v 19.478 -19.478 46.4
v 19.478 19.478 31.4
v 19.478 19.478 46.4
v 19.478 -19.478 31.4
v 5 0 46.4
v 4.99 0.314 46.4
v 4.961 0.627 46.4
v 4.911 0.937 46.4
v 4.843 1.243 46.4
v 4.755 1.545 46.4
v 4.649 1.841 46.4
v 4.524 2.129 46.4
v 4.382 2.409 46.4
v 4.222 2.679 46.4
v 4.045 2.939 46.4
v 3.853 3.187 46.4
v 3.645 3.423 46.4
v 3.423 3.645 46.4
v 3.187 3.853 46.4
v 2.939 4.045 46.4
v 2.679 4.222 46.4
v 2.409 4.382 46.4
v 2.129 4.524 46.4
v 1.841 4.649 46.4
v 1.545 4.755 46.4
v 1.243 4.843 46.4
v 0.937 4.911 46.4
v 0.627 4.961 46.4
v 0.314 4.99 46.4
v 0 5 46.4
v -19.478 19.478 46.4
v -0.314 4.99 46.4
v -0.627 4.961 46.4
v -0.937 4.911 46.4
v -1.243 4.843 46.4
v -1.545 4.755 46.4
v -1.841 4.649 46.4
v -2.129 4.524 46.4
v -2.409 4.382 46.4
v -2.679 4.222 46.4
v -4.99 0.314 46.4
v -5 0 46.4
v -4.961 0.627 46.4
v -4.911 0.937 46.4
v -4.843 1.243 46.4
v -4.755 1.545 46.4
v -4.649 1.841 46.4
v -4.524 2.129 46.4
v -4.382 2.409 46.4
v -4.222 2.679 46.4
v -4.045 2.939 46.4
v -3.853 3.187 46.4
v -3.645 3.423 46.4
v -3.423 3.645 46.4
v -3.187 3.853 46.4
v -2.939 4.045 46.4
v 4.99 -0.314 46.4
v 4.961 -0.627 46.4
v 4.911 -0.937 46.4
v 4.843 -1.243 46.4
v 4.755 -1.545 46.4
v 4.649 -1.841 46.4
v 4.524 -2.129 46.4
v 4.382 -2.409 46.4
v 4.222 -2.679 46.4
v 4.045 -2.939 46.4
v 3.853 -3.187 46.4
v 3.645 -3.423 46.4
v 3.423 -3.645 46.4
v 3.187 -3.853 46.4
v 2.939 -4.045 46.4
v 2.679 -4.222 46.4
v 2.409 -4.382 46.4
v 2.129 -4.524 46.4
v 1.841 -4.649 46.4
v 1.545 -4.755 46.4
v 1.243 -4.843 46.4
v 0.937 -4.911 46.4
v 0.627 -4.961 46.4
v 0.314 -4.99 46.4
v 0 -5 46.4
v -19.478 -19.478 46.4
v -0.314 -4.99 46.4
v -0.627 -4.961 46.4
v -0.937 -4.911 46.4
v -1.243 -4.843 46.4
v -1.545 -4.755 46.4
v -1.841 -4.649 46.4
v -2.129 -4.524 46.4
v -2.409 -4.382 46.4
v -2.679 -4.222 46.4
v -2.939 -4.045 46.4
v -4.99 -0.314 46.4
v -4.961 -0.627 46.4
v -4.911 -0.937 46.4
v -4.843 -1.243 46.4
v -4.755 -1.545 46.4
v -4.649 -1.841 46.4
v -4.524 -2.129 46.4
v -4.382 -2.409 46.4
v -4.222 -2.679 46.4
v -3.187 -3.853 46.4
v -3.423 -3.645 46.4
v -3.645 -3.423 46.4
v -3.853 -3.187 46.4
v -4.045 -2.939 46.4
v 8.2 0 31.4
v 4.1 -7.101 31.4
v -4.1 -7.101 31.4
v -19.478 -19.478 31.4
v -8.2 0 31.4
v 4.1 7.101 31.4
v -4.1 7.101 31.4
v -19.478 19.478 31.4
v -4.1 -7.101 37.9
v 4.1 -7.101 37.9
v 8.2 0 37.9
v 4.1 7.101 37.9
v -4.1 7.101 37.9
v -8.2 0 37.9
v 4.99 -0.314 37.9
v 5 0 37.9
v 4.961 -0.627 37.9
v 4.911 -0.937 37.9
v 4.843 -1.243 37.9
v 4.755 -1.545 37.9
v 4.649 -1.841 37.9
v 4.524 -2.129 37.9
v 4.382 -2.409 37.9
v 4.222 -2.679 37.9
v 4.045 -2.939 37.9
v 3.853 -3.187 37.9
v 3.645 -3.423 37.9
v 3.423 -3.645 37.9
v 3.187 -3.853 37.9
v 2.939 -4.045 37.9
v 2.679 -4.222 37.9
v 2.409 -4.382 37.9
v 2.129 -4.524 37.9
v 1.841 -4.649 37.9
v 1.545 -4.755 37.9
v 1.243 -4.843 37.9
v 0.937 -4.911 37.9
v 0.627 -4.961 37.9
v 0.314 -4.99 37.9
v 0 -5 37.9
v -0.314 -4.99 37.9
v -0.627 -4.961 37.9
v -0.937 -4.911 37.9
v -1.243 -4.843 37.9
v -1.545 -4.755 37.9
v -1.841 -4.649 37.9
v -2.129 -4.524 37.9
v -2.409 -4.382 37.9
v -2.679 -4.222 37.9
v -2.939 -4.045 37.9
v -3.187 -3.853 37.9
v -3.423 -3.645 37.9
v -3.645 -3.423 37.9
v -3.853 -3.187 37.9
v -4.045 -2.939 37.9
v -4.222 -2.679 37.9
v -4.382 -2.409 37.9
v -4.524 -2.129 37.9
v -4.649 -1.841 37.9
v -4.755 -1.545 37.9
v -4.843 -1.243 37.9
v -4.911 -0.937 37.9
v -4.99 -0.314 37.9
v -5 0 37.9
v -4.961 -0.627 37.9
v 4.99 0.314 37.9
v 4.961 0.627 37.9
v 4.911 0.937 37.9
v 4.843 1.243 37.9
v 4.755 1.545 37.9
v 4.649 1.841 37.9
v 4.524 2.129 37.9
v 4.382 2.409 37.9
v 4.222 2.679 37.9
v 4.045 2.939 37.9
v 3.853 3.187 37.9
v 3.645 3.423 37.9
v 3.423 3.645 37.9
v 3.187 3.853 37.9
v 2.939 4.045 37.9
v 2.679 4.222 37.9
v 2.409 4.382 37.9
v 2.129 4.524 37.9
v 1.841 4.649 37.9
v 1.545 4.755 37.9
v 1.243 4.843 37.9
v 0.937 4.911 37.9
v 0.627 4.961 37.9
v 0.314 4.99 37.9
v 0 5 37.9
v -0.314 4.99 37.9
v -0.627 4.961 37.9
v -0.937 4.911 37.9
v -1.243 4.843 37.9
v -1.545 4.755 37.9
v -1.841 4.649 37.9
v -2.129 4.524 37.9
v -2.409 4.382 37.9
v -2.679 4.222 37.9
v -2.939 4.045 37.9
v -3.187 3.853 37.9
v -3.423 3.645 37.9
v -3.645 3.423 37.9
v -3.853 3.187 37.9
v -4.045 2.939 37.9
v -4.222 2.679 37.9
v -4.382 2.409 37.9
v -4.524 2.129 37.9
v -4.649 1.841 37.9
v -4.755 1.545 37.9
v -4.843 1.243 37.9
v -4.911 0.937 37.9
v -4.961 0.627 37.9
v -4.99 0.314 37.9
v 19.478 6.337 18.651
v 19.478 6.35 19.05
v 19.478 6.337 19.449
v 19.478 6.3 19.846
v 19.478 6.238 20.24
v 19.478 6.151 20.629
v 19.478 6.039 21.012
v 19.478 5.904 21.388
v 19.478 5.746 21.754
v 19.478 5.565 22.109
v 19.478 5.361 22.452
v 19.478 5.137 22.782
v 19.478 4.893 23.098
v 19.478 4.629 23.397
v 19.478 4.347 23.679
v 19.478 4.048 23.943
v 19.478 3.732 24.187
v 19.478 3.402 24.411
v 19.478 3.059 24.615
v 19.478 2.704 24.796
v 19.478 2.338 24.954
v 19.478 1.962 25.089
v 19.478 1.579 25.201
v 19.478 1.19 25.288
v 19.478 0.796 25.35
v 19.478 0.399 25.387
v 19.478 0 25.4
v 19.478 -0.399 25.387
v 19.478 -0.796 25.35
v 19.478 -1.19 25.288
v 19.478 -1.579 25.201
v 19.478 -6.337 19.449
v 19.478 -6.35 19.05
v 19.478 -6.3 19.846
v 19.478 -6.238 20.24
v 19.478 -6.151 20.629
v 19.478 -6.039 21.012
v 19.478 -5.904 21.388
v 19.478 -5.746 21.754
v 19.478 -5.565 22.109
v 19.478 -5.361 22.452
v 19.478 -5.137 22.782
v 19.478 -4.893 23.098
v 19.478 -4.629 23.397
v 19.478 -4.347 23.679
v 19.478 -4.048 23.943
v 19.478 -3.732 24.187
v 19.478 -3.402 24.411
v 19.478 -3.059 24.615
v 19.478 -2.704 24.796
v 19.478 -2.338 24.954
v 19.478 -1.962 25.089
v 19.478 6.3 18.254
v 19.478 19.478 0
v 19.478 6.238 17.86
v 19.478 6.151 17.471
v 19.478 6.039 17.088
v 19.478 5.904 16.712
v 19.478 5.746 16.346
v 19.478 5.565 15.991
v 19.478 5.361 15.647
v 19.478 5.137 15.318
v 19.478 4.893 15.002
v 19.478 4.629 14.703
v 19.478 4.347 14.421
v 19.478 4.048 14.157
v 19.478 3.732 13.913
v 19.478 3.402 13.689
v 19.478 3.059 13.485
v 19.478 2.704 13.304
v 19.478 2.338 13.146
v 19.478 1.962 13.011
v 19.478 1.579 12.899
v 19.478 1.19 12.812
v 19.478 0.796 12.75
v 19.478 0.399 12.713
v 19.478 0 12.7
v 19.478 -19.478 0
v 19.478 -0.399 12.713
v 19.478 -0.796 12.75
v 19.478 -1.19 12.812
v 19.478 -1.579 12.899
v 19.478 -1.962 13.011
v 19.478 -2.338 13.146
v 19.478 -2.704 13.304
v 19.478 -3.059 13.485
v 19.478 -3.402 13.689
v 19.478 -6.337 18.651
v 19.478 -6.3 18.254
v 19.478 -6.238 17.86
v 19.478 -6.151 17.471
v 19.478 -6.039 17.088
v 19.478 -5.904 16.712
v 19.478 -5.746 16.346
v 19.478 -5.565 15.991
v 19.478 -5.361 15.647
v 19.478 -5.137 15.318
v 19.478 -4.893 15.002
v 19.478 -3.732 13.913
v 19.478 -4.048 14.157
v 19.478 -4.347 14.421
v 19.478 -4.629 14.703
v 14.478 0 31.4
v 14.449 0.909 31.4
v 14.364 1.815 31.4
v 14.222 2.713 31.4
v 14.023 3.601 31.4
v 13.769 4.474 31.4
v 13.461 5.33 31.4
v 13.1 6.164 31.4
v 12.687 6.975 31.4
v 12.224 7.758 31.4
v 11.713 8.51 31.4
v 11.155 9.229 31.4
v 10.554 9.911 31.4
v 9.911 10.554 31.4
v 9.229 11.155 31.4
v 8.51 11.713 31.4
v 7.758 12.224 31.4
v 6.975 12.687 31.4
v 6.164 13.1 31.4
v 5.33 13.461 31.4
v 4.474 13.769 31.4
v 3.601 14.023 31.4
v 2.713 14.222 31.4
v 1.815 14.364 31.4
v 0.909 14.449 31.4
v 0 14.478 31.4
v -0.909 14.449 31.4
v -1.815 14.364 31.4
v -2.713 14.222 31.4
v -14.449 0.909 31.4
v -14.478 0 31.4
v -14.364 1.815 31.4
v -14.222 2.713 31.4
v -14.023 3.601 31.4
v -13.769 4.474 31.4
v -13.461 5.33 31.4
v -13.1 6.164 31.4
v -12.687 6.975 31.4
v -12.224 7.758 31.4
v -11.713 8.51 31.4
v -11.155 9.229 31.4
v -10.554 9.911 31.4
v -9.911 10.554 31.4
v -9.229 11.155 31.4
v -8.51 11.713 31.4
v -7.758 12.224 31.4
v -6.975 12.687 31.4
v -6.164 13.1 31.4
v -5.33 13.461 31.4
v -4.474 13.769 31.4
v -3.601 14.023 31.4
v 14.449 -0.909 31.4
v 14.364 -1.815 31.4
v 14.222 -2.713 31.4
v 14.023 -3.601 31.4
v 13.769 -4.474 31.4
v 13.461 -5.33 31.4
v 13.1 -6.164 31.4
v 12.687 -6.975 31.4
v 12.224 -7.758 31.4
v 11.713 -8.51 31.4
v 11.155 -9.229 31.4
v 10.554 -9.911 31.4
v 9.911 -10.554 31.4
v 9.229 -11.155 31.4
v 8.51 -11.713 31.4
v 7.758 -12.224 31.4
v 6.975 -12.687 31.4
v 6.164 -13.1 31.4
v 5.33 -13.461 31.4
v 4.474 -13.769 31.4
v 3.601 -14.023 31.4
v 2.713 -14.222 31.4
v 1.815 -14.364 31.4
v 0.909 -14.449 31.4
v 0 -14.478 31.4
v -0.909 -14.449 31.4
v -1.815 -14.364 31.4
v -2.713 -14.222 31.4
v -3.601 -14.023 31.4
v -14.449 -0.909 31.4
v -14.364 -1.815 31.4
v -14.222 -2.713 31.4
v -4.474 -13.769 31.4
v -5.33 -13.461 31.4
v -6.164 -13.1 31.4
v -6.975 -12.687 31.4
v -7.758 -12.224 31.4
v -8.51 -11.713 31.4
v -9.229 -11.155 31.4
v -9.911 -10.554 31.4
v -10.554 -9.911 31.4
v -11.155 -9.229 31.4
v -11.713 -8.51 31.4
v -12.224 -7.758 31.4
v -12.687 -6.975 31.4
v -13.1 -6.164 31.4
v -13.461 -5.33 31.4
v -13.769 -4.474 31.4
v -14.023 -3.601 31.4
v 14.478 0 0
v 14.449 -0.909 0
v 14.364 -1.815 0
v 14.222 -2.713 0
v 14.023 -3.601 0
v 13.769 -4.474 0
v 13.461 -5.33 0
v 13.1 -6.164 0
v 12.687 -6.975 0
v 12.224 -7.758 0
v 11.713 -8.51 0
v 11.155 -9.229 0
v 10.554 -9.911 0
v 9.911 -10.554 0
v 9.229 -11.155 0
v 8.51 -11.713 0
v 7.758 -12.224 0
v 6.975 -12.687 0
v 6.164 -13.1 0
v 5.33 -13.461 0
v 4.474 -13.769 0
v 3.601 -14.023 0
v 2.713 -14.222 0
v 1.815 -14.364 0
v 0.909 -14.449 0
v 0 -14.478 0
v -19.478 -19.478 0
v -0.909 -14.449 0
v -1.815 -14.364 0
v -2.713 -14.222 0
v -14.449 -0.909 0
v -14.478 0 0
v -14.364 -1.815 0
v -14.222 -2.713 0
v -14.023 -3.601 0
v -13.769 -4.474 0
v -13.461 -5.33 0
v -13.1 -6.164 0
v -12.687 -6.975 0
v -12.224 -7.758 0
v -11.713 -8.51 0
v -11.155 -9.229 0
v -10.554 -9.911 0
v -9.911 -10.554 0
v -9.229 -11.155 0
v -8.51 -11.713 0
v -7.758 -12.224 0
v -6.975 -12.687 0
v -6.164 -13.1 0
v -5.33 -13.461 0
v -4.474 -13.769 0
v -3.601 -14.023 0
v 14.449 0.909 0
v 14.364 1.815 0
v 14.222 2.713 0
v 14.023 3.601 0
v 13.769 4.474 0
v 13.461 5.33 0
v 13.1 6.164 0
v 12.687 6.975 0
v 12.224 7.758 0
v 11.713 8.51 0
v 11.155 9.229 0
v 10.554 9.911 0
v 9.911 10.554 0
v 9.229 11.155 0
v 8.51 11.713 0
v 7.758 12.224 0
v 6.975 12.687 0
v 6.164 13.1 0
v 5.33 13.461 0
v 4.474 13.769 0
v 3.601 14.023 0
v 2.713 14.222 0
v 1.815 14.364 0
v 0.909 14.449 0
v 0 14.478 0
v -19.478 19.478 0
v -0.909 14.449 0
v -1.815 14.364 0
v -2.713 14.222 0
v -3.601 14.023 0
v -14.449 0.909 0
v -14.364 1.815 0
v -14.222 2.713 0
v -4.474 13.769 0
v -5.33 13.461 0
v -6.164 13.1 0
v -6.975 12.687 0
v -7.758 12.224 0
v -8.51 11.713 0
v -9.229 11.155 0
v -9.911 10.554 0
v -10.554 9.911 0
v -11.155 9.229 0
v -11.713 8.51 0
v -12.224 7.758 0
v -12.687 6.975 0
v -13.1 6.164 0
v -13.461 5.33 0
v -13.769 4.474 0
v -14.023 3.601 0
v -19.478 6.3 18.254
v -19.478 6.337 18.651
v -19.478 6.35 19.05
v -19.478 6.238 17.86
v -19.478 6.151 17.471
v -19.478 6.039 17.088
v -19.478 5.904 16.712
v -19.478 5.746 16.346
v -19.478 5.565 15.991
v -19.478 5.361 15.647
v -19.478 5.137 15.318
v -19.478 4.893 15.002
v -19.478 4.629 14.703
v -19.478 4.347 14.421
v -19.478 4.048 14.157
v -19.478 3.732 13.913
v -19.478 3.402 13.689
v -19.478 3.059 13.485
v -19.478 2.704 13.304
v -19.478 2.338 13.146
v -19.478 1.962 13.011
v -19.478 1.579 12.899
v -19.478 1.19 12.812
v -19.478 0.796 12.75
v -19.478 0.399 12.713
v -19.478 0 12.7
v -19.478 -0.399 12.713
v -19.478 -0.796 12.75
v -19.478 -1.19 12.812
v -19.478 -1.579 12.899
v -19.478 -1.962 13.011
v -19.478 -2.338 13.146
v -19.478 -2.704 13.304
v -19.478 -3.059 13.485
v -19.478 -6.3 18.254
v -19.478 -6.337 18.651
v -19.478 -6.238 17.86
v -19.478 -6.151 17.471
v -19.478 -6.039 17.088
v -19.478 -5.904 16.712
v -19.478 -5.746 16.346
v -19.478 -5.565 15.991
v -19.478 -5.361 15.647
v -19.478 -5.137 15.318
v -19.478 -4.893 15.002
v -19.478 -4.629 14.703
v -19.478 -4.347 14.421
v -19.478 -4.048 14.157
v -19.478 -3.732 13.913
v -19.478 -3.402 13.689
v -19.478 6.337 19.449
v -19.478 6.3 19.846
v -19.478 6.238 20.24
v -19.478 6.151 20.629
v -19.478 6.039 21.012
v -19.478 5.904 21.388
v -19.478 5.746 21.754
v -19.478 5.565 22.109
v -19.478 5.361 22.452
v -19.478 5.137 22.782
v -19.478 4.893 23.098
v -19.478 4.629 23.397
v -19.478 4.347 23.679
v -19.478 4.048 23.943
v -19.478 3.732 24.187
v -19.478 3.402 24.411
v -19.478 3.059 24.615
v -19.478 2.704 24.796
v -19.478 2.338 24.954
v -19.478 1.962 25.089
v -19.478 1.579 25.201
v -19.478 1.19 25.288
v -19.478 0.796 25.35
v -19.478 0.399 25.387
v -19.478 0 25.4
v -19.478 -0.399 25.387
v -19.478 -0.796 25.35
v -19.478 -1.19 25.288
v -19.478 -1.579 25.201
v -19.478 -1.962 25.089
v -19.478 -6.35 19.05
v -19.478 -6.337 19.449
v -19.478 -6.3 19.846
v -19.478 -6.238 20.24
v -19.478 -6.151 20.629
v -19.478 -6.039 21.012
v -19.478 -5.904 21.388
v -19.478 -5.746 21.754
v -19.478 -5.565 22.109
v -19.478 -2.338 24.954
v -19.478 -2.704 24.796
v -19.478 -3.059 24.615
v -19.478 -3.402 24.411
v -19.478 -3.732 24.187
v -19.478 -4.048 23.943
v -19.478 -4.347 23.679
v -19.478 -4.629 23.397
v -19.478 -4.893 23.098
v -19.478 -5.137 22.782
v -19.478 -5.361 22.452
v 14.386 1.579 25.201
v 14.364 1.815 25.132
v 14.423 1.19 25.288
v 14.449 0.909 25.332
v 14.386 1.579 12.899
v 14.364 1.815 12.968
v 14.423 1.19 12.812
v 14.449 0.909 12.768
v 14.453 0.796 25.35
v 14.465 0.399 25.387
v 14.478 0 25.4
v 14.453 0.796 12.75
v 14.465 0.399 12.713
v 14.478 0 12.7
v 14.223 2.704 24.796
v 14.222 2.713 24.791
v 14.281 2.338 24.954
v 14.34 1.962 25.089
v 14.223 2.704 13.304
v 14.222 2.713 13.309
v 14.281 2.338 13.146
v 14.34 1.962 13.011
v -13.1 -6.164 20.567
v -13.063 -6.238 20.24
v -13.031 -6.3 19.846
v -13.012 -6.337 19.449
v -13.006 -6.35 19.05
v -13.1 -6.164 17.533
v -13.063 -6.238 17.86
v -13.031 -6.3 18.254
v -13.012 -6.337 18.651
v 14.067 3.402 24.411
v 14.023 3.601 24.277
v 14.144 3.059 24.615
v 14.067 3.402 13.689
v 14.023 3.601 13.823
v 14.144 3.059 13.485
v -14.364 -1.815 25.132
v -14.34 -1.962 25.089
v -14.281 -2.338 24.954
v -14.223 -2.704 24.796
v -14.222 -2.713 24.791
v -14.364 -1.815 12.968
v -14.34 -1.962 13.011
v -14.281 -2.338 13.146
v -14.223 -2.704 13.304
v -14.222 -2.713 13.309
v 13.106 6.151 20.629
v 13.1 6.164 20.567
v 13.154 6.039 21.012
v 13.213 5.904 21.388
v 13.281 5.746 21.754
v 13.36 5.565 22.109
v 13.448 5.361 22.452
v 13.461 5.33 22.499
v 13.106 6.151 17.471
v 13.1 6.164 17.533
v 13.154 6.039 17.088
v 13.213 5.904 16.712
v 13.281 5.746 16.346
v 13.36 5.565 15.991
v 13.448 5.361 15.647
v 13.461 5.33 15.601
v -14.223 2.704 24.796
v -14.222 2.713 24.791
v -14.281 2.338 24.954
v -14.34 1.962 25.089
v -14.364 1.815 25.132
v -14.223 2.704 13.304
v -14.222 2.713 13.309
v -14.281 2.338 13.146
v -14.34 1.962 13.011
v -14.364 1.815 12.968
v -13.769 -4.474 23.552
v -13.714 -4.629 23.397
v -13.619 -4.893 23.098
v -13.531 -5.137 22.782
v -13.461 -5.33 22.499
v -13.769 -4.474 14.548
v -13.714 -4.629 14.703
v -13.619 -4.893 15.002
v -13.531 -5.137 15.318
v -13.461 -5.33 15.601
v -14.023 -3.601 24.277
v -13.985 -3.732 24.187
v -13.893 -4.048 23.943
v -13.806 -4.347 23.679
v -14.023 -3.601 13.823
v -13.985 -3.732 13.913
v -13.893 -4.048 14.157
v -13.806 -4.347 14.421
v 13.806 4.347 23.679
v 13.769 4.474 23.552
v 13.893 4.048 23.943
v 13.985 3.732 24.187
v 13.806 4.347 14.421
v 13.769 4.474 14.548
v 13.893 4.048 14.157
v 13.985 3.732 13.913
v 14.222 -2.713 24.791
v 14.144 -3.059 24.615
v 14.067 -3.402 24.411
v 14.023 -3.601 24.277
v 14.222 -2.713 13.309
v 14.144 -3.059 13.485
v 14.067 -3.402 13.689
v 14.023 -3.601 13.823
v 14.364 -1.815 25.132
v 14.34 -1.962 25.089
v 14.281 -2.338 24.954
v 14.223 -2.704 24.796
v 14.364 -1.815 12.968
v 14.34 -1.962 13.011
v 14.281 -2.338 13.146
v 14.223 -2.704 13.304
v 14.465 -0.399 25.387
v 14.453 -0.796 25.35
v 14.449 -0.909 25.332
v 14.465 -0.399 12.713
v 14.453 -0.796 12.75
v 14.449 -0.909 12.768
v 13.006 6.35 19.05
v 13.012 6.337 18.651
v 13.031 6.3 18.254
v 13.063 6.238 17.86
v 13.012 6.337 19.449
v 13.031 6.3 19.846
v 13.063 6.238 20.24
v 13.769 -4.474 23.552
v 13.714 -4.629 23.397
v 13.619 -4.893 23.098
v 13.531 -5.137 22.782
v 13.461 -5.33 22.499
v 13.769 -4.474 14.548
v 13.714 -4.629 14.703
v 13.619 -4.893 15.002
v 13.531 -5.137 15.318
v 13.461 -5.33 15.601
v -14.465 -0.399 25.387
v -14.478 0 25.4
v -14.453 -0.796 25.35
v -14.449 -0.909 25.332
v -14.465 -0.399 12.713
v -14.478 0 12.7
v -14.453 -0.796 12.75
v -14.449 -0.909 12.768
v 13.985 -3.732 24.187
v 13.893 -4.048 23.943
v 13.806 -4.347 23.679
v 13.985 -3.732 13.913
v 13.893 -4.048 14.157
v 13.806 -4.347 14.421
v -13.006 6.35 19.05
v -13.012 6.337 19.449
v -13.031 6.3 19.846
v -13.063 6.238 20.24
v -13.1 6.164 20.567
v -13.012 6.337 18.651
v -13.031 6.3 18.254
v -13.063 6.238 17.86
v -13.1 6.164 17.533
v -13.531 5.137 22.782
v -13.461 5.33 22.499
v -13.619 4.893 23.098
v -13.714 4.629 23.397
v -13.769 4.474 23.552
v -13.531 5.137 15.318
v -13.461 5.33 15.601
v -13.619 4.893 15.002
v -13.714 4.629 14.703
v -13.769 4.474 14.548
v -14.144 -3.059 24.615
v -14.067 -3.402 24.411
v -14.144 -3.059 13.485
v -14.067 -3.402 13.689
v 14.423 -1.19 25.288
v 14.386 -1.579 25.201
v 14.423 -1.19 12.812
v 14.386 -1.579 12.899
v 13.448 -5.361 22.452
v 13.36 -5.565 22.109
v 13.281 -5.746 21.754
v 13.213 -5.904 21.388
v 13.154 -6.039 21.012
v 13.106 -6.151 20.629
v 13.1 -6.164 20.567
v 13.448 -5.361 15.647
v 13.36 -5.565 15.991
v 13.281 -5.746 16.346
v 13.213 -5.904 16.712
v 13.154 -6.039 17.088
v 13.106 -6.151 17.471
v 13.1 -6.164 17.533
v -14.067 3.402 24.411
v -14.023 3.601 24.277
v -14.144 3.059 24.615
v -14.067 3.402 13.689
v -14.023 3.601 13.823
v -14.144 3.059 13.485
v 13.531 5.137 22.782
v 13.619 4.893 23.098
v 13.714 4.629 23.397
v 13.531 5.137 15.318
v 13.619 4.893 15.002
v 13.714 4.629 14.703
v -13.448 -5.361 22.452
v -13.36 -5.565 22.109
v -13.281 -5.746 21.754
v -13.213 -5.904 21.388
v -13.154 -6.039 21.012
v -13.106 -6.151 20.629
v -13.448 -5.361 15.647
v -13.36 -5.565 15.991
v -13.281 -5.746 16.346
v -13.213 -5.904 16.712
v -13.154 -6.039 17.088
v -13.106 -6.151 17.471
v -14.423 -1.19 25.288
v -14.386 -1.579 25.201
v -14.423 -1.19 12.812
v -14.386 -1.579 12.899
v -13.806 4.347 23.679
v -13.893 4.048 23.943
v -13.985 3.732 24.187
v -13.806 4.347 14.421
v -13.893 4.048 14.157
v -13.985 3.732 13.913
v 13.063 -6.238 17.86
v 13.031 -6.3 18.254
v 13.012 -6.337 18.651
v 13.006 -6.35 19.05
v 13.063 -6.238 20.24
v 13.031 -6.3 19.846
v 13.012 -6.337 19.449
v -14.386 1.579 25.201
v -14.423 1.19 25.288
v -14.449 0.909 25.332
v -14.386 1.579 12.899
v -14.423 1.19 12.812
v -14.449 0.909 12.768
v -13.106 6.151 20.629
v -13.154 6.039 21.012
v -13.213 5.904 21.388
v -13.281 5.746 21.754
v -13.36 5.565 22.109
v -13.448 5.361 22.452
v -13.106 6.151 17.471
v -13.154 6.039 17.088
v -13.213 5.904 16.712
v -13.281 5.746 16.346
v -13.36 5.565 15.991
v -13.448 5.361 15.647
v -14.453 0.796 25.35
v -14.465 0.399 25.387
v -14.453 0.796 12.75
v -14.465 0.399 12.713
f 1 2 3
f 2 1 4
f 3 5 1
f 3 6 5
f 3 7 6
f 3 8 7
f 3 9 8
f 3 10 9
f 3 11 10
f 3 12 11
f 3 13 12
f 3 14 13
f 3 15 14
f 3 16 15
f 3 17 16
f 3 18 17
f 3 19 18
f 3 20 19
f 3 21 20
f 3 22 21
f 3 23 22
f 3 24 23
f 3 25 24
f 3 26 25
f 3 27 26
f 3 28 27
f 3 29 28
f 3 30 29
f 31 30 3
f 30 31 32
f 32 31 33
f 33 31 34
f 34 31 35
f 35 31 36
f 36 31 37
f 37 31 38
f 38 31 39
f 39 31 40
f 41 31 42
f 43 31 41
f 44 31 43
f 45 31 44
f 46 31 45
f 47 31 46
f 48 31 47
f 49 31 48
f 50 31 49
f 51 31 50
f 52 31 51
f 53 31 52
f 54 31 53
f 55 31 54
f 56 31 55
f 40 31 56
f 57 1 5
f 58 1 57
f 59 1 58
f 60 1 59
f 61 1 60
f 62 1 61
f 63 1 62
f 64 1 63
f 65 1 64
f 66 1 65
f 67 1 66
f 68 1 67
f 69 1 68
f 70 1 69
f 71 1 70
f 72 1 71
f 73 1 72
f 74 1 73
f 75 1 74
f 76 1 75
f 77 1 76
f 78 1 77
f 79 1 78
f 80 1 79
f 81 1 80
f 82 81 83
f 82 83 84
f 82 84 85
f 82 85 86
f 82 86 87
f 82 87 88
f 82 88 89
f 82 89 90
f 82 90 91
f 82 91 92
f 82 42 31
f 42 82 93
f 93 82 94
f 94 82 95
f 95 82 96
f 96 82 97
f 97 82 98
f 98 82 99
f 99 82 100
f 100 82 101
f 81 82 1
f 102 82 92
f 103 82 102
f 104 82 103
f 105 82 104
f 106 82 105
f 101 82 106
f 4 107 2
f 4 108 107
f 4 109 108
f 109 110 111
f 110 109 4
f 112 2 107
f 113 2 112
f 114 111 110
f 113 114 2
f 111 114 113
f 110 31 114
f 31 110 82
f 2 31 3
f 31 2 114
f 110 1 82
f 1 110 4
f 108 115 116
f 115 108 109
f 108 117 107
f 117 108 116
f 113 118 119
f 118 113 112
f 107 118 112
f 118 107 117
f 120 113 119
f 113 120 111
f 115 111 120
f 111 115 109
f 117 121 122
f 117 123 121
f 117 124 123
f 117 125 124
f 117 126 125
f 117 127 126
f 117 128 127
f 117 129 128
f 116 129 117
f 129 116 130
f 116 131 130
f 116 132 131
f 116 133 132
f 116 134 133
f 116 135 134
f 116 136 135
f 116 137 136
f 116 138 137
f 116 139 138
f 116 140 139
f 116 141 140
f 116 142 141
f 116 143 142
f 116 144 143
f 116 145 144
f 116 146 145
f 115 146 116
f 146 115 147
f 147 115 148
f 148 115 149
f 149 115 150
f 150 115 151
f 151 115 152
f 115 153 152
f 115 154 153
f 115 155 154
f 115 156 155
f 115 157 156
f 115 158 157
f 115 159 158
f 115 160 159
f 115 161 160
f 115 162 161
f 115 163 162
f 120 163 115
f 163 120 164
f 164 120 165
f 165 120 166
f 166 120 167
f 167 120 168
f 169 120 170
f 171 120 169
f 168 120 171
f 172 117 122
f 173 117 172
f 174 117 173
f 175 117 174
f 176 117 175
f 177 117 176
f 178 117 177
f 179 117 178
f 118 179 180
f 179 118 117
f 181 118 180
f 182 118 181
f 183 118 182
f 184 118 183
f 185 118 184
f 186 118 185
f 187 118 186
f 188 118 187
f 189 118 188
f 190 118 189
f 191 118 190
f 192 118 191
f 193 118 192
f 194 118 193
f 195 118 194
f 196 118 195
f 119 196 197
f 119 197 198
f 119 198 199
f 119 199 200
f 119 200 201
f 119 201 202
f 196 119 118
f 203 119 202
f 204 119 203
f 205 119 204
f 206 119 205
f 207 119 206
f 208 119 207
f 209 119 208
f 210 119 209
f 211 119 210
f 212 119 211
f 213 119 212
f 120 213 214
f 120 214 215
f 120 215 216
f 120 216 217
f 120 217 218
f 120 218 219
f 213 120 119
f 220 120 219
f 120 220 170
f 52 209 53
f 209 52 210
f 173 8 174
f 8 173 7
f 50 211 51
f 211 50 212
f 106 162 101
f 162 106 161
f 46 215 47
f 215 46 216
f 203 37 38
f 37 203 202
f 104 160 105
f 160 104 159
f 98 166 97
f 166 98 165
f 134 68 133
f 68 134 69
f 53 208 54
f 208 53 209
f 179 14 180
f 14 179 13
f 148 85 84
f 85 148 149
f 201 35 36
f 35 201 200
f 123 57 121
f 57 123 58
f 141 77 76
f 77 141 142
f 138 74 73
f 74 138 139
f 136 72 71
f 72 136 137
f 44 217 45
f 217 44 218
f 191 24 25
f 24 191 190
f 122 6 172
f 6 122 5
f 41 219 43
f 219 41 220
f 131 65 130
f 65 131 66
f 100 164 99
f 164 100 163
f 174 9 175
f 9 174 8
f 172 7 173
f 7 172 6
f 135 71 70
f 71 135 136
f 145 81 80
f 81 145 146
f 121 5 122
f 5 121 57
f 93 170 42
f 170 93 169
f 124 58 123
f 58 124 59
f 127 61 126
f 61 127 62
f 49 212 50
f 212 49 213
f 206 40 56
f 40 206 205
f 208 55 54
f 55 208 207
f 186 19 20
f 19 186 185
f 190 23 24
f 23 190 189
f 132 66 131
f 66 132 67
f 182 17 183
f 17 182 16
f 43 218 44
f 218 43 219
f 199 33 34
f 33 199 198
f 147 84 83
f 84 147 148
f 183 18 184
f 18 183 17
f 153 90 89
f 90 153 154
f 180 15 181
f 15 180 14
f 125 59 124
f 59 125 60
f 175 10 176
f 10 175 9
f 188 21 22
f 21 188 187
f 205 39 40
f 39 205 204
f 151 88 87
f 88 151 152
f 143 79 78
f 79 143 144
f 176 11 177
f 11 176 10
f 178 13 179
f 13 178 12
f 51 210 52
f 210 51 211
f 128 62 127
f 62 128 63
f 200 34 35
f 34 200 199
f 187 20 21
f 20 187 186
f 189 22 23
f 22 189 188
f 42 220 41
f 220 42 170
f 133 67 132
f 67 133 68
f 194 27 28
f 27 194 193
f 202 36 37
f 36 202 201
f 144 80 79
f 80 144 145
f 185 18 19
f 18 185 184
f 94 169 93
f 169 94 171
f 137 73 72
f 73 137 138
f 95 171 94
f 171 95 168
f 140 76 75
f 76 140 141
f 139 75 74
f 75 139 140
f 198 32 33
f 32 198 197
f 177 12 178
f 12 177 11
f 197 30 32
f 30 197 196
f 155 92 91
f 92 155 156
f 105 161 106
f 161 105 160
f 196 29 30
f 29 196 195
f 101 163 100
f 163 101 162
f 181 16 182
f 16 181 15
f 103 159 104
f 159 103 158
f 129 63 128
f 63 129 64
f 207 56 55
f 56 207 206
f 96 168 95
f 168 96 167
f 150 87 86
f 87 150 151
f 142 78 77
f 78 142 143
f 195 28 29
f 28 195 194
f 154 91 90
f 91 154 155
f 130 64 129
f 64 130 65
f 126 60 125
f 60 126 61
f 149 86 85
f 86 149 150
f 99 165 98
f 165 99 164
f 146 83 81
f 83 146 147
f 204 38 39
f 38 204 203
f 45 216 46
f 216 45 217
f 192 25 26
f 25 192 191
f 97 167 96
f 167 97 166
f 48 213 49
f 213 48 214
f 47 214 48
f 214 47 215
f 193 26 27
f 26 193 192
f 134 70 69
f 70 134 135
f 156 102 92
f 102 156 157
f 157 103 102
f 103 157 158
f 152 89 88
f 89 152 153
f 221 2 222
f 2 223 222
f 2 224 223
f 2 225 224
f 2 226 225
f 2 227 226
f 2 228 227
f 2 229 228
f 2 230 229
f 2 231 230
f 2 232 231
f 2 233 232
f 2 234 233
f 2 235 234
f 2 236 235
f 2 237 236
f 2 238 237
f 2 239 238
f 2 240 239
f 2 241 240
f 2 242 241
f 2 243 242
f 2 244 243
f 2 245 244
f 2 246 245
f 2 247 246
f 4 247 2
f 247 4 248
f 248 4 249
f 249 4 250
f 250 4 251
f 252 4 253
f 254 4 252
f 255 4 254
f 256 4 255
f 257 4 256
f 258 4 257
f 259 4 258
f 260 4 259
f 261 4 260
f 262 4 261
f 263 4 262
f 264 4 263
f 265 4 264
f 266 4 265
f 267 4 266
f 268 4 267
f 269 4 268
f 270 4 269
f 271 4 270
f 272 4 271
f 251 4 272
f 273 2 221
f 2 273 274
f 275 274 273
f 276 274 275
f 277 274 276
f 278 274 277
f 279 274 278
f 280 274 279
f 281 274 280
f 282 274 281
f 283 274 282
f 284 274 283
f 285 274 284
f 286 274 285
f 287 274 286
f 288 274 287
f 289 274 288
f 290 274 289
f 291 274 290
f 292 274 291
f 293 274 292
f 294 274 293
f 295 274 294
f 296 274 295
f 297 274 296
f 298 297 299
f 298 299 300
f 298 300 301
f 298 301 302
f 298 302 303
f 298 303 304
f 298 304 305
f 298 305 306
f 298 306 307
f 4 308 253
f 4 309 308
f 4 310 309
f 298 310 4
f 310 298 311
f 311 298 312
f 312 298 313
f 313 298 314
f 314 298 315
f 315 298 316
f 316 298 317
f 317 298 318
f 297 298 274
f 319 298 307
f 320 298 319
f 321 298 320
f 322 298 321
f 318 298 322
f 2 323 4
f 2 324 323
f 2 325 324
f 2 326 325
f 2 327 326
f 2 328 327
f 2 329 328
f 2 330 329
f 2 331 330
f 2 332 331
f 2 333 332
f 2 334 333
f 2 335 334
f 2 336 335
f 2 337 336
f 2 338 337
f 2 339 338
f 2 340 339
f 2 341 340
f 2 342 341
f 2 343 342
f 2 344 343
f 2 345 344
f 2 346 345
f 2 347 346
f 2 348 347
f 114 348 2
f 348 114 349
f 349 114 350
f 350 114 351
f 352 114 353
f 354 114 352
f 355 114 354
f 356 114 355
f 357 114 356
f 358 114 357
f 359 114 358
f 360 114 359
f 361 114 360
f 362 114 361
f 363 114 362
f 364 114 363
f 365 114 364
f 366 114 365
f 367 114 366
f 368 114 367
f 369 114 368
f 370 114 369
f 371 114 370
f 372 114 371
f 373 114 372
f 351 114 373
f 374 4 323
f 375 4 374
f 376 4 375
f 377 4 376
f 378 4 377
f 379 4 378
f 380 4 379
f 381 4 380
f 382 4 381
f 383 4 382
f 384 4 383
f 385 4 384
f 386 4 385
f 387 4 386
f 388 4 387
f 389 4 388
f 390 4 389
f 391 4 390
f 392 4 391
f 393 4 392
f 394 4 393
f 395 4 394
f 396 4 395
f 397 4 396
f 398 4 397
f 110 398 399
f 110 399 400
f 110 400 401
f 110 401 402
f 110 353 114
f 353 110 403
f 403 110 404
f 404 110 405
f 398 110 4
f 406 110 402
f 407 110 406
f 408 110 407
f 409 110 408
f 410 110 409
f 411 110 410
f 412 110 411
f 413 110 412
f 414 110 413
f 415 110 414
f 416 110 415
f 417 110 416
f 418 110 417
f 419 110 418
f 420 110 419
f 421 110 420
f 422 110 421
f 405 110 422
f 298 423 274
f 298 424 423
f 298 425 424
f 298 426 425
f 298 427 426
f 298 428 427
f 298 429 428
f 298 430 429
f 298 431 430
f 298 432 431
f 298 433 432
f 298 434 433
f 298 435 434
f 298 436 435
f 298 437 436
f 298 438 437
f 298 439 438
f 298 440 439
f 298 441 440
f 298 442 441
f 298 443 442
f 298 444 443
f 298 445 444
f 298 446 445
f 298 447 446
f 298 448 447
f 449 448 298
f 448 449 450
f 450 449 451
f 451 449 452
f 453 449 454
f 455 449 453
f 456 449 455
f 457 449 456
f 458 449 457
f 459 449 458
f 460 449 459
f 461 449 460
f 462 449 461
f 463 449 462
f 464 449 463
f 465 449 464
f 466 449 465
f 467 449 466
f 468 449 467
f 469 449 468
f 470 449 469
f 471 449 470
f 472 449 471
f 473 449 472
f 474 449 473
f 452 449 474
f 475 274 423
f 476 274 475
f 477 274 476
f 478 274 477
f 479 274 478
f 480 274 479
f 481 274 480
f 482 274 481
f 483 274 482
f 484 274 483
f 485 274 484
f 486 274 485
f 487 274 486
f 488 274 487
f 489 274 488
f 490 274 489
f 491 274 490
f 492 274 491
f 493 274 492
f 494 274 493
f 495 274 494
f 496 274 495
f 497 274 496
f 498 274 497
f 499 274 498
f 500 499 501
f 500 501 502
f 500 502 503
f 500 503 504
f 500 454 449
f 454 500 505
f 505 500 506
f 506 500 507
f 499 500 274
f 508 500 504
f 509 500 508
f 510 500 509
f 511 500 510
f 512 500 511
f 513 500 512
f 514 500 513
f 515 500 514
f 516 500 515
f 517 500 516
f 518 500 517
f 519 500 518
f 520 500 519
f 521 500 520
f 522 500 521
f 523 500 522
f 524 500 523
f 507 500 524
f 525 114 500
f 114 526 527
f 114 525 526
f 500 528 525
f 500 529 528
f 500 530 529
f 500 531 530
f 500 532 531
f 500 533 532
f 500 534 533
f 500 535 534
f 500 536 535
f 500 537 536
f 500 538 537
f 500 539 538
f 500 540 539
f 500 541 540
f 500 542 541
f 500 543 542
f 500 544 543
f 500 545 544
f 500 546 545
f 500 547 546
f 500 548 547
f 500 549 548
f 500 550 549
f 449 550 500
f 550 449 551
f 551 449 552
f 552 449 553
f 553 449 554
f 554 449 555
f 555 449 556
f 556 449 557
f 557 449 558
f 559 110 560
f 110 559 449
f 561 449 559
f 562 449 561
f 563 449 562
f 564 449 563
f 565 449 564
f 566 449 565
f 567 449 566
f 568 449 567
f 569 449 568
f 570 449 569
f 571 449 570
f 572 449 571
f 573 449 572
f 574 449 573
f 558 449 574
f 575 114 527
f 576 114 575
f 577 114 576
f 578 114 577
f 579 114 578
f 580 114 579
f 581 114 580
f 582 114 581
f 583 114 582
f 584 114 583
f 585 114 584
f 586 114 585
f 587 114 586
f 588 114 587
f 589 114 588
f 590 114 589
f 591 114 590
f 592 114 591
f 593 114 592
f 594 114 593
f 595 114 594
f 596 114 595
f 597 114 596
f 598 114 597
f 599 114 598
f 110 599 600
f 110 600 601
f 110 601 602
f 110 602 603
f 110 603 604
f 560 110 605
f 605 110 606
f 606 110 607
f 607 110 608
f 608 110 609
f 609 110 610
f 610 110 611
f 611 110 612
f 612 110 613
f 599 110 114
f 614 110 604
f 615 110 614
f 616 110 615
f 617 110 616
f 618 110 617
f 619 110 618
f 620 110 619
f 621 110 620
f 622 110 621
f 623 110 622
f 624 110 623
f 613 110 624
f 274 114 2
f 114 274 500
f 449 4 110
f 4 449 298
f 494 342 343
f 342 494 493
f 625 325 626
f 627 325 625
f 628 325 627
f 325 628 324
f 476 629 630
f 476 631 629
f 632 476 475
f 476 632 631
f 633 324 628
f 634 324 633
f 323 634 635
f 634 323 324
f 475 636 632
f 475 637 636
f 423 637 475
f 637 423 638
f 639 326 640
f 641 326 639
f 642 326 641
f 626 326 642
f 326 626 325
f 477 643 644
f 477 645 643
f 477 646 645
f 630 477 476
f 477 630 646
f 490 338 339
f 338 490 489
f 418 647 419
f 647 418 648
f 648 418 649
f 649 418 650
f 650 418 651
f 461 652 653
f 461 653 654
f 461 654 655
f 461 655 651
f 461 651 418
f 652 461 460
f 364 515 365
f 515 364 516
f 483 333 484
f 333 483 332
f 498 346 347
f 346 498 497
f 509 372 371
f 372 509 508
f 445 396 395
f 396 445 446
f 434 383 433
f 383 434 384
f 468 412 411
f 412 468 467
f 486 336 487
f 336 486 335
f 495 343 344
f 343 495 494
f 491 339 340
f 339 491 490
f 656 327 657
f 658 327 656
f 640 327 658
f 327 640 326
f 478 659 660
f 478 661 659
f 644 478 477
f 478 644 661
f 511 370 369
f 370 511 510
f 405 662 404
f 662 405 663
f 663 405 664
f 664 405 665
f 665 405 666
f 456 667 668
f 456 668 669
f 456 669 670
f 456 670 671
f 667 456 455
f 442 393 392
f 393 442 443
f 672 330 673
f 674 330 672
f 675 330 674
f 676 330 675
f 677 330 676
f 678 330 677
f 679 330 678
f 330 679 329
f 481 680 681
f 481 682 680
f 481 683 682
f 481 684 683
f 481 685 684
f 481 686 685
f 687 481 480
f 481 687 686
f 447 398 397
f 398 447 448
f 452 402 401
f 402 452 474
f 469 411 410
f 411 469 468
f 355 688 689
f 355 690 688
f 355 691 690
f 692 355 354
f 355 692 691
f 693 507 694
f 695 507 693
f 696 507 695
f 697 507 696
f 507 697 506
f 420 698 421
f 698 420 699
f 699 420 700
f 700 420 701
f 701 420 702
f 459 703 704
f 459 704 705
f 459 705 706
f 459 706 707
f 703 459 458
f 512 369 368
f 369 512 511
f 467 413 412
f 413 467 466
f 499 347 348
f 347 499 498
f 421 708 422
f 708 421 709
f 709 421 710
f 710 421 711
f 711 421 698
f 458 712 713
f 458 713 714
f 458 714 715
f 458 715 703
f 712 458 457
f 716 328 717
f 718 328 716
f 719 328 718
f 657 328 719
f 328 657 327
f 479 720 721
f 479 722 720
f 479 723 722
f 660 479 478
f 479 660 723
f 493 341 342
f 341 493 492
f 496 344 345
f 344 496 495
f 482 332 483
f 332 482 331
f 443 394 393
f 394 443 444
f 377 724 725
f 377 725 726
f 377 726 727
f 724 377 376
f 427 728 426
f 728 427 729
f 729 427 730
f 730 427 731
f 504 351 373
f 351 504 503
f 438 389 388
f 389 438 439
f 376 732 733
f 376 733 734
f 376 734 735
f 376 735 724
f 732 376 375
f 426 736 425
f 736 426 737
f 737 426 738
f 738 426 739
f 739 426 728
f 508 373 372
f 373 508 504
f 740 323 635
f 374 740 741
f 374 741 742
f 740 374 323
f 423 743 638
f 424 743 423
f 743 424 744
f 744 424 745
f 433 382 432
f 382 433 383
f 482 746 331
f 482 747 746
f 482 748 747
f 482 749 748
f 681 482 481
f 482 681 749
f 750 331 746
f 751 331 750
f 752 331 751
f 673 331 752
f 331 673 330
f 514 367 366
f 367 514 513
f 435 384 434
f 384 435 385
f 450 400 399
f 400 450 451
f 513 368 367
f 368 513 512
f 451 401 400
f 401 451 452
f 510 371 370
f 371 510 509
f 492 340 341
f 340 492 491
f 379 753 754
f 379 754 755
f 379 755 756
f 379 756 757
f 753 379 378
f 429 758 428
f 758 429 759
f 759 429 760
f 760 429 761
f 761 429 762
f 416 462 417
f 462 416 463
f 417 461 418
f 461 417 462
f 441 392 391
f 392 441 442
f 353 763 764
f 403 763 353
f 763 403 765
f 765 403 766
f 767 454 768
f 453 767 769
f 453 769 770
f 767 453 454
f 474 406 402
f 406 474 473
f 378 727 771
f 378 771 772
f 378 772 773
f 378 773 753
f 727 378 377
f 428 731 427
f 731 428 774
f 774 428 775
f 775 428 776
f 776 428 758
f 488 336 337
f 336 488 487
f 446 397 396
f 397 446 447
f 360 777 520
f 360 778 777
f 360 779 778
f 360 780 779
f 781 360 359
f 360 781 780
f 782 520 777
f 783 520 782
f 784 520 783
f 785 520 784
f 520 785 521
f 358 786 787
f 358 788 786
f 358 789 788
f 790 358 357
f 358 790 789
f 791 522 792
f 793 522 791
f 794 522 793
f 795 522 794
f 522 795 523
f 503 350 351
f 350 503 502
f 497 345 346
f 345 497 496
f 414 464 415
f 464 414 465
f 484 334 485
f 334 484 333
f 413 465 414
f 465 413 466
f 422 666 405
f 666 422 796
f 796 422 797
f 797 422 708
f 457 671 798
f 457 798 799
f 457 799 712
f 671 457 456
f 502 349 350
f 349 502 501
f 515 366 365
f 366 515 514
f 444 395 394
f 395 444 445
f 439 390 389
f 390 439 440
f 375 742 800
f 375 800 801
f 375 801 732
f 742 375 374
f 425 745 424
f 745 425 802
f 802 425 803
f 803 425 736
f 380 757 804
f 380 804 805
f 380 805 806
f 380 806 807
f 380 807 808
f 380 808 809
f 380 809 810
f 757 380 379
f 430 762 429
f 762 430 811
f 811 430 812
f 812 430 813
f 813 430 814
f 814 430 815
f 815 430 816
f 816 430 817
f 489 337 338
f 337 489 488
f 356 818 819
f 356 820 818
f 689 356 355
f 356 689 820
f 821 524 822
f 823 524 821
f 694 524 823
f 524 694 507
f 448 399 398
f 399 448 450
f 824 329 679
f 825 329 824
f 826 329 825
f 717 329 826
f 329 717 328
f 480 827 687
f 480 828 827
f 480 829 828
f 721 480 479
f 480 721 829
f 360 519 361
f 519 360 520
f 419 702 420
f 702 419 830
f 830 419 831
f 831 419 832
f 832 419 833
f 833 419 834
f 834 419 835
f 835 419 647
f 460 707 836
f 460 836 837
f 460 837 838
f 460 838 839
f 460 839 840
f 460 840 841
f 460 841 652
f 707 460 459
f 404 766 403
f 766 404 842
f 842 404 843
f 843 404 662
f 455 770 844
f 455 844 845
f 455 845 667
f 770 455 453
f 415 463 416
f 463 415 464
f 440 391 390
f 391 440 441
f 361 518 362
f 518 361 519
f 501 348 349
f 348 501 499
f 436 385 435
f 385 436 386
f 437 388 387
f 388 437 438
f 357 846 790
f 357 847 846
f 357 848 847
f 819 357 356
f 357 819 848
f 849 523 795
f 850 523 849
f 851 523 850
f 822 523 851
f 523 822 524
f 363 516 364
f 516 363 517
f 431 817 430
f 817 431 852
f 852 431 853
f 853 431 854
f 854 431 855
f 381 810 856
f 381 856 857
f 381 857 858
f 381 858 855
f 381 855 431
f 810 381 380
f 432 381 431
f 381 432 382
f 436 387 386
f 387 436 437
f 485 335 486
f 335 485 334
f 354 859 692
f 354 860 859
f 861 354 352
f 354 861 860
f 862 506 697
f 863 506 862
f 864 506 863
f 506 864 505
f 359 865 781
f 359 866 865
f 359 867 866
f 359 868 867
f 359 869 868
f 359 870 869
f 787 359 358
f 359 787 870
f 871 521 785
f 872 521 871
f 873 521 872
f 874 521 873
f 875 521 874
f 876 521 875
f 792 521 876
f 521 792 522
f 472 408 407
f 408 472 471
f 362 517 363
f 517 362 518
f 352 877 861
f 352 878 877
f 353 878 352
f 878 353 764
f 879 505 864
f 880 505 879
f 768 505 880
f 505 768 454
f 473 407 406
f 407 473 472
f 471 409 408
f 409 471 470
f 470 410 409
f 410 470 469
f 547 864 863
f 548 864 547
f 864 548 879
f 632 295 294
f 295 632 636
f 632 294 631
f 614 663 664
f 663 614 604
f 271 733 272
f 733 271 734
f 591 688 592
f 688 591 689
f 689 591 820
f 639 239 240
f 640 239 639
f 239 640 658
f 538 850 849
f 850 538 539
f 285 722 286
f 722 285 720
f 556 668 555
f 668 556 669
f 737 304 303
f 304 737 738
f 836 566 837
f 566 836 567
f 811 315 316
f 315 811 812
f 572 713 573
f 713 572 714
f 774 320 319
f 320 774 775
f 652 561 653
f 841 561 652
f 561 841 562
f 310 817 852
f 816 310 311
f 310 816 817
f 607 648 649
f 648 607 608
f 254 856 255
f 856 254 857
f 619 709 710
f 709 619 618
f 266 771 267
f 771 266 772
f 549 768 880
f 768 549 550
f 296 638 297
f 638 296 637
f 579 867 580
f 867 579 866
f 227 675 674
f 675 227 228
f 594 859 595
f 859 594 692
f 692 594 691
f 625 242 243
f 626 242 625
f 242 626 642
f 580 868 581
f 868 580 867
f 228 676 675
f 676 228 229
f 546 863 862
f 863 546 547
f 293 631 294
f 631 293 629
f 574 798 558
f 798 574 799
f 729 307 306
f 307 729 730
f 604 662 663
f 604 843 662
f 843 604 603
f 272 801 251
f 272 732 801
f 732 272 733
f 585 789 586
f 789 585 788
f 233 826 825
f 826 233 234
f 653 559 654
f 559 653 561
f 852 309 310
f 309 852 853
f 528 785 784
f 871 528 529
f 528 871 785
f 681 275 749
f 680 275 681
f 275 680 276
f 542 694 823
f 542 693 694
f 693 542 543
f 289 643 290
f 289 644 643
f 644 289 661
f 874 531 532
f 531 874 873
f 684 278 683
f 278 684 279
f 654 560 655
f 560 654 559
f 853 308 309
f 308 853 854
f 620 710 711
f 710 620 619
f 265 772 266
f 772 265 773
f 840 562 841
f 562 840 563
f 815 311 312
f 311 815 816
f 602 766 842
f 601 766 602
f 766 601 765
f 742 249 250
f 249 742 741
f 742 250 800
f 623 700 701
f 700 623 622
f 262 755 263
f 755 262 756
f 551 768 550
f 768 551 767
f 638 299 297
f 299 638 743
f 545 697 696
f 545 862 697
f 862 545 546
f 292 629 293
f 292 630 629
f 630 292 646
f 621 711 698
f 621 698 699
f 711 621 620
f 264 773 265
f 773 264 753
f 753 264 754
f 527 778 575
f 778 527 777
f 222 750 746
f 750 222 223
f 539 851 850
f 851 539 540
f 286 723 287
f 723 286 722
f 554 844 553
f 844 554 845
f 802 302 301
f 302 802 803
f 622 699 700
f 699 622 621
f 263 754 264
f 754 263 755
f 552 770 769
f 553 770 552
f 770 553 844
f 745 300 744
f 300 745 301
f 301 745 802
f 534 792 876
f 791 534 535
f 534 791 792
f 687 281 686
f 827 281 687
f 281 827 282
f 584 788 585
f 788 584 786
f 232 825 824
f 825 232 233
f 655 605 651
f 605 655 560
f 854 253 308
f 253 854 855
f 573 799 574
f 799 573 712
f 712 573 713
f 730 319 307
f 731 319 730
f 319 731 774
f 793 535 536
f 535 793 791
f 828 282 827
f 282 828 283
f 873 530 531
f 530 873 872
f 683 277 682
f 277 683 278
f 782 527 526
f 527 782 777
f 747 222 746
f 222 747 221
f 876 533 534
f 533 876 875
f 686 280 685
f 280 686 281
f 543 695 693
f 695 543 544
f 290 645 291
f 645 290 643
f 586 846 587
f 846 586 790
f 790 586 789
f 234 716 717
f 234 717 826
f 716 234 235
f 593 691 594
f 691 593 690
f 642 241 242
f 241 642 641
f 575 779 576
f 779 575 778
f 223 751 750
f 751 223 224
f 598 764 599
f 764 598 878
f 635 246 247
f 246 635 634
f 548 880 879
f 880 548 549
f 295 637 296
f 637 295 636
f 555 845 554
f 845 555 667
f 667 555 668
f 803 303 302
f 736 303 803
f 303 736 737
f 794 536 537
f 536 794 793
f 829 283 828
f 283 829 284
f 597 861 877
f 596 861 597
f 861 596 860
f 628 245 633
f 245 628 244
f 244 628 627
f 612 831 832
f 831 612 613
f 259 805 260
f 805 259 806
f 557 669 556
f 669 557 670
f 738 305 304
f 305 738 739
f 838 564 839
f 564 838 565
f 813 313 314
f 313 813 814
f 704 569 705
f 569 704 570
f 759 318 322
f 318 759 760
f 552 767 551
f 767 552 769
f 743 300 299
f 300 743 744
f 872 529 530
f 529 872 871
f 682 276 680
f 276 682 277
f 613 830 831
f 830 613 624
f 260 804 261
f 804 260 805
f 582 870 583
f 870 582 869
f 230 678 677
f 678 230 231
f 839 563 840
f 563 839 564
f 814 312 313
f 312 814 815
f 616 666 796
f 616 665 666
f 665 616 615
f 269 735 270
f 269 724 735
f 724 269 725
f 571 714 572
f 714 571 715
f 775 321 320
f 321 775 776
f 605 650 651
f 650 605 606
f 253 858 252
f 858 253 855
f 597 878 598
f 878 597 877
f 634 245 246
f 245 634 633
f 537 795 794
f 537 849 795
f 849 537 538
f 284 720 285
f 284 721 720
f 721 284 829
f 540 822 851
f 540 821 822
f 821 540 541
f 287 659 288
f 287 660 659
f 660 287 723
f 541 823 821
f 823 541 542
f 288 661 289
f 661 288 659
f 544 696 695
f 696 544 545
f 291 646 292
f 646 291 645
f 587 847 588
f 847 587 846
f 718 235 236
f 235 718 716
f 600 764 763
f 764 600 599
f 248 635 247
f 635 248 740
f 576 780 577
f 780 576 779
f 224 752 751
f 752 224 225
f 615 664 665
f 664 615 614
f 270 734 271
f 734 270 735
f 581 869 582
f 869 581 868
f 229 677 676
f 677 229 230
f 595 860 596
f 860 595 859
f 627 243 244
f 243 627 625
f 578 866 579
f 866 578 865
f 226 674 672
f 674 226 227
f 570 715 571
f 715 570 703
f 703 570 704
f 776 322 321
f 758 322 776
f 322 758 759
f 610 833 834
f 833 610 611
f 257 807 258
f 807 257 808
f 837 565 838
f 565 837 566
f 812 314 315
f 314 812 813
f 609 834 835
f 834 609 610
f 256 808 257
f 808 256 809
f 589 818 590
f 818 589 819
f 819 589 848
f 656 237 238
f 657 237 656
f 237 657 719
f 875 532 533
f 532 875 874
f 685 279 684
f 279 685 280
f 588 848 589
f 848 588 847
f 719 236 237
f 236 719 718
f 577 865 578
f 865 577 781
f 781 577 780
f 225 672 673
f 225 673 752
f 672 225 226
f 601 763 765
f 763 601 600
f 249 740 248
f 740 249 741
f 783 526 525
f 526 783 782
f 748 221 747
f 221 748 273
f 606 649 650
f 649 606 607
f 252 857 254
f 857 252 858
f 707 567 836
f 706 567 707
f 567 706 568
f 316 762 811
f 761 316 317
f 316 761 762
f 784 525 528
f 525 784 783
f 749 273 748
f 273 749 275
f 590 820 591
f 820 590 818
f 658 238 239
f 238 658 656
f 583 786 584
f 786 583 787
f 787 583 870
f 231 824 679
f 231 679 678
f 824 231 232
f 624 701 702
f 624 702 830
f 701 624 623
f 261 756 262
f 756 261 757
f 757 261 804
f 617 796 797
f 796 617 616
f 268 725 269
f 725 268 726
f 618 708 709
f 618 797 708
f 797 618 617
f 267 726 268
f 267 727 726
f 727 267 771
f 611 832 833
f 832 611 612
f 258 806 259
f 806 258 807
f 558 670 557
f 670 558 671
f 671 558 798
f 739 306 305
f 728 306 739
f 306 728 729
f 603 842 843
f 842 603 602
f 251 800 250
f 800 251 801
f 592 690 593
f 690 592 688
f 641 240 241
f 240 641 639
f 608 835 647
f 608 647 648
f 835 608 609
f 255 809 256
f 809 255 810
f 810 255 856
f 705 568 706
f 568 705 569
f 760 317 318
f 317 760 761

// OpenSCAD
actuatorShaftDia = 1.14*25.4; // mm
actuatorShaftHoleDia = 0.5*25.4; // mm
actuatorShaftHoleOffset = (1.29 - 0.93)*25.4; // mm
actuatorShaftHoleOffsetClearance = 6; // mm

capWallThickness = 5; // mm
capOD = actuatorShaftDia + 2 * capWallThickness; // mm
capShaftDepth = 1 * 25.4 + actuatorShaftHoleOffsetClearance; // mm
capEndThickness = 15; // mm
hexBoltHeadDepth = 6.5; // mm
hexBoltCapDia = 16.4; // mm 0.2 margin
hexBoltDia = 10; // mm

module endCap () {
difference() {
  translate([0,0,capEndThickness/2]) cube([capOD, capOD, capEndThickness], center=true);
//  cylinder(h = capEndThickness, r = capOD / 2, $fn = 100);
  translate([0,0,-1]) cylinder(h = hexBoltHeadDepth + 1, r = hexBoltCapDia / 2, $fn = 6);
    translate([0,0,1]) cylinder(h = capEndThickness, r = hexBoltDia/2, $fn=100);}
}

translate([0,0,capShaftDepth]) endCap();

difference() {
  translate([0,0,capShaftDepth/2]) cube([capOD, capOD, capShaftDepth], center=true);
//cylinder(h = capShaftDepth , r = capOD / 2, $fn=100);
translate([0,0,-1]) cylinder(h = capShaftDepth + 1 , r = actuatorShaftDia / 2, $fn=100);
translate([-capOD/2-1,0,capShaftDepth - actuatorShaftHoleDia / 2 - actuatorShaftHoleOffsetClearance]) rotate([0,90,0]) cylinder(h = capOD + 2, r = actuatorShaftHoleDia / 2, $fn=100);
}
